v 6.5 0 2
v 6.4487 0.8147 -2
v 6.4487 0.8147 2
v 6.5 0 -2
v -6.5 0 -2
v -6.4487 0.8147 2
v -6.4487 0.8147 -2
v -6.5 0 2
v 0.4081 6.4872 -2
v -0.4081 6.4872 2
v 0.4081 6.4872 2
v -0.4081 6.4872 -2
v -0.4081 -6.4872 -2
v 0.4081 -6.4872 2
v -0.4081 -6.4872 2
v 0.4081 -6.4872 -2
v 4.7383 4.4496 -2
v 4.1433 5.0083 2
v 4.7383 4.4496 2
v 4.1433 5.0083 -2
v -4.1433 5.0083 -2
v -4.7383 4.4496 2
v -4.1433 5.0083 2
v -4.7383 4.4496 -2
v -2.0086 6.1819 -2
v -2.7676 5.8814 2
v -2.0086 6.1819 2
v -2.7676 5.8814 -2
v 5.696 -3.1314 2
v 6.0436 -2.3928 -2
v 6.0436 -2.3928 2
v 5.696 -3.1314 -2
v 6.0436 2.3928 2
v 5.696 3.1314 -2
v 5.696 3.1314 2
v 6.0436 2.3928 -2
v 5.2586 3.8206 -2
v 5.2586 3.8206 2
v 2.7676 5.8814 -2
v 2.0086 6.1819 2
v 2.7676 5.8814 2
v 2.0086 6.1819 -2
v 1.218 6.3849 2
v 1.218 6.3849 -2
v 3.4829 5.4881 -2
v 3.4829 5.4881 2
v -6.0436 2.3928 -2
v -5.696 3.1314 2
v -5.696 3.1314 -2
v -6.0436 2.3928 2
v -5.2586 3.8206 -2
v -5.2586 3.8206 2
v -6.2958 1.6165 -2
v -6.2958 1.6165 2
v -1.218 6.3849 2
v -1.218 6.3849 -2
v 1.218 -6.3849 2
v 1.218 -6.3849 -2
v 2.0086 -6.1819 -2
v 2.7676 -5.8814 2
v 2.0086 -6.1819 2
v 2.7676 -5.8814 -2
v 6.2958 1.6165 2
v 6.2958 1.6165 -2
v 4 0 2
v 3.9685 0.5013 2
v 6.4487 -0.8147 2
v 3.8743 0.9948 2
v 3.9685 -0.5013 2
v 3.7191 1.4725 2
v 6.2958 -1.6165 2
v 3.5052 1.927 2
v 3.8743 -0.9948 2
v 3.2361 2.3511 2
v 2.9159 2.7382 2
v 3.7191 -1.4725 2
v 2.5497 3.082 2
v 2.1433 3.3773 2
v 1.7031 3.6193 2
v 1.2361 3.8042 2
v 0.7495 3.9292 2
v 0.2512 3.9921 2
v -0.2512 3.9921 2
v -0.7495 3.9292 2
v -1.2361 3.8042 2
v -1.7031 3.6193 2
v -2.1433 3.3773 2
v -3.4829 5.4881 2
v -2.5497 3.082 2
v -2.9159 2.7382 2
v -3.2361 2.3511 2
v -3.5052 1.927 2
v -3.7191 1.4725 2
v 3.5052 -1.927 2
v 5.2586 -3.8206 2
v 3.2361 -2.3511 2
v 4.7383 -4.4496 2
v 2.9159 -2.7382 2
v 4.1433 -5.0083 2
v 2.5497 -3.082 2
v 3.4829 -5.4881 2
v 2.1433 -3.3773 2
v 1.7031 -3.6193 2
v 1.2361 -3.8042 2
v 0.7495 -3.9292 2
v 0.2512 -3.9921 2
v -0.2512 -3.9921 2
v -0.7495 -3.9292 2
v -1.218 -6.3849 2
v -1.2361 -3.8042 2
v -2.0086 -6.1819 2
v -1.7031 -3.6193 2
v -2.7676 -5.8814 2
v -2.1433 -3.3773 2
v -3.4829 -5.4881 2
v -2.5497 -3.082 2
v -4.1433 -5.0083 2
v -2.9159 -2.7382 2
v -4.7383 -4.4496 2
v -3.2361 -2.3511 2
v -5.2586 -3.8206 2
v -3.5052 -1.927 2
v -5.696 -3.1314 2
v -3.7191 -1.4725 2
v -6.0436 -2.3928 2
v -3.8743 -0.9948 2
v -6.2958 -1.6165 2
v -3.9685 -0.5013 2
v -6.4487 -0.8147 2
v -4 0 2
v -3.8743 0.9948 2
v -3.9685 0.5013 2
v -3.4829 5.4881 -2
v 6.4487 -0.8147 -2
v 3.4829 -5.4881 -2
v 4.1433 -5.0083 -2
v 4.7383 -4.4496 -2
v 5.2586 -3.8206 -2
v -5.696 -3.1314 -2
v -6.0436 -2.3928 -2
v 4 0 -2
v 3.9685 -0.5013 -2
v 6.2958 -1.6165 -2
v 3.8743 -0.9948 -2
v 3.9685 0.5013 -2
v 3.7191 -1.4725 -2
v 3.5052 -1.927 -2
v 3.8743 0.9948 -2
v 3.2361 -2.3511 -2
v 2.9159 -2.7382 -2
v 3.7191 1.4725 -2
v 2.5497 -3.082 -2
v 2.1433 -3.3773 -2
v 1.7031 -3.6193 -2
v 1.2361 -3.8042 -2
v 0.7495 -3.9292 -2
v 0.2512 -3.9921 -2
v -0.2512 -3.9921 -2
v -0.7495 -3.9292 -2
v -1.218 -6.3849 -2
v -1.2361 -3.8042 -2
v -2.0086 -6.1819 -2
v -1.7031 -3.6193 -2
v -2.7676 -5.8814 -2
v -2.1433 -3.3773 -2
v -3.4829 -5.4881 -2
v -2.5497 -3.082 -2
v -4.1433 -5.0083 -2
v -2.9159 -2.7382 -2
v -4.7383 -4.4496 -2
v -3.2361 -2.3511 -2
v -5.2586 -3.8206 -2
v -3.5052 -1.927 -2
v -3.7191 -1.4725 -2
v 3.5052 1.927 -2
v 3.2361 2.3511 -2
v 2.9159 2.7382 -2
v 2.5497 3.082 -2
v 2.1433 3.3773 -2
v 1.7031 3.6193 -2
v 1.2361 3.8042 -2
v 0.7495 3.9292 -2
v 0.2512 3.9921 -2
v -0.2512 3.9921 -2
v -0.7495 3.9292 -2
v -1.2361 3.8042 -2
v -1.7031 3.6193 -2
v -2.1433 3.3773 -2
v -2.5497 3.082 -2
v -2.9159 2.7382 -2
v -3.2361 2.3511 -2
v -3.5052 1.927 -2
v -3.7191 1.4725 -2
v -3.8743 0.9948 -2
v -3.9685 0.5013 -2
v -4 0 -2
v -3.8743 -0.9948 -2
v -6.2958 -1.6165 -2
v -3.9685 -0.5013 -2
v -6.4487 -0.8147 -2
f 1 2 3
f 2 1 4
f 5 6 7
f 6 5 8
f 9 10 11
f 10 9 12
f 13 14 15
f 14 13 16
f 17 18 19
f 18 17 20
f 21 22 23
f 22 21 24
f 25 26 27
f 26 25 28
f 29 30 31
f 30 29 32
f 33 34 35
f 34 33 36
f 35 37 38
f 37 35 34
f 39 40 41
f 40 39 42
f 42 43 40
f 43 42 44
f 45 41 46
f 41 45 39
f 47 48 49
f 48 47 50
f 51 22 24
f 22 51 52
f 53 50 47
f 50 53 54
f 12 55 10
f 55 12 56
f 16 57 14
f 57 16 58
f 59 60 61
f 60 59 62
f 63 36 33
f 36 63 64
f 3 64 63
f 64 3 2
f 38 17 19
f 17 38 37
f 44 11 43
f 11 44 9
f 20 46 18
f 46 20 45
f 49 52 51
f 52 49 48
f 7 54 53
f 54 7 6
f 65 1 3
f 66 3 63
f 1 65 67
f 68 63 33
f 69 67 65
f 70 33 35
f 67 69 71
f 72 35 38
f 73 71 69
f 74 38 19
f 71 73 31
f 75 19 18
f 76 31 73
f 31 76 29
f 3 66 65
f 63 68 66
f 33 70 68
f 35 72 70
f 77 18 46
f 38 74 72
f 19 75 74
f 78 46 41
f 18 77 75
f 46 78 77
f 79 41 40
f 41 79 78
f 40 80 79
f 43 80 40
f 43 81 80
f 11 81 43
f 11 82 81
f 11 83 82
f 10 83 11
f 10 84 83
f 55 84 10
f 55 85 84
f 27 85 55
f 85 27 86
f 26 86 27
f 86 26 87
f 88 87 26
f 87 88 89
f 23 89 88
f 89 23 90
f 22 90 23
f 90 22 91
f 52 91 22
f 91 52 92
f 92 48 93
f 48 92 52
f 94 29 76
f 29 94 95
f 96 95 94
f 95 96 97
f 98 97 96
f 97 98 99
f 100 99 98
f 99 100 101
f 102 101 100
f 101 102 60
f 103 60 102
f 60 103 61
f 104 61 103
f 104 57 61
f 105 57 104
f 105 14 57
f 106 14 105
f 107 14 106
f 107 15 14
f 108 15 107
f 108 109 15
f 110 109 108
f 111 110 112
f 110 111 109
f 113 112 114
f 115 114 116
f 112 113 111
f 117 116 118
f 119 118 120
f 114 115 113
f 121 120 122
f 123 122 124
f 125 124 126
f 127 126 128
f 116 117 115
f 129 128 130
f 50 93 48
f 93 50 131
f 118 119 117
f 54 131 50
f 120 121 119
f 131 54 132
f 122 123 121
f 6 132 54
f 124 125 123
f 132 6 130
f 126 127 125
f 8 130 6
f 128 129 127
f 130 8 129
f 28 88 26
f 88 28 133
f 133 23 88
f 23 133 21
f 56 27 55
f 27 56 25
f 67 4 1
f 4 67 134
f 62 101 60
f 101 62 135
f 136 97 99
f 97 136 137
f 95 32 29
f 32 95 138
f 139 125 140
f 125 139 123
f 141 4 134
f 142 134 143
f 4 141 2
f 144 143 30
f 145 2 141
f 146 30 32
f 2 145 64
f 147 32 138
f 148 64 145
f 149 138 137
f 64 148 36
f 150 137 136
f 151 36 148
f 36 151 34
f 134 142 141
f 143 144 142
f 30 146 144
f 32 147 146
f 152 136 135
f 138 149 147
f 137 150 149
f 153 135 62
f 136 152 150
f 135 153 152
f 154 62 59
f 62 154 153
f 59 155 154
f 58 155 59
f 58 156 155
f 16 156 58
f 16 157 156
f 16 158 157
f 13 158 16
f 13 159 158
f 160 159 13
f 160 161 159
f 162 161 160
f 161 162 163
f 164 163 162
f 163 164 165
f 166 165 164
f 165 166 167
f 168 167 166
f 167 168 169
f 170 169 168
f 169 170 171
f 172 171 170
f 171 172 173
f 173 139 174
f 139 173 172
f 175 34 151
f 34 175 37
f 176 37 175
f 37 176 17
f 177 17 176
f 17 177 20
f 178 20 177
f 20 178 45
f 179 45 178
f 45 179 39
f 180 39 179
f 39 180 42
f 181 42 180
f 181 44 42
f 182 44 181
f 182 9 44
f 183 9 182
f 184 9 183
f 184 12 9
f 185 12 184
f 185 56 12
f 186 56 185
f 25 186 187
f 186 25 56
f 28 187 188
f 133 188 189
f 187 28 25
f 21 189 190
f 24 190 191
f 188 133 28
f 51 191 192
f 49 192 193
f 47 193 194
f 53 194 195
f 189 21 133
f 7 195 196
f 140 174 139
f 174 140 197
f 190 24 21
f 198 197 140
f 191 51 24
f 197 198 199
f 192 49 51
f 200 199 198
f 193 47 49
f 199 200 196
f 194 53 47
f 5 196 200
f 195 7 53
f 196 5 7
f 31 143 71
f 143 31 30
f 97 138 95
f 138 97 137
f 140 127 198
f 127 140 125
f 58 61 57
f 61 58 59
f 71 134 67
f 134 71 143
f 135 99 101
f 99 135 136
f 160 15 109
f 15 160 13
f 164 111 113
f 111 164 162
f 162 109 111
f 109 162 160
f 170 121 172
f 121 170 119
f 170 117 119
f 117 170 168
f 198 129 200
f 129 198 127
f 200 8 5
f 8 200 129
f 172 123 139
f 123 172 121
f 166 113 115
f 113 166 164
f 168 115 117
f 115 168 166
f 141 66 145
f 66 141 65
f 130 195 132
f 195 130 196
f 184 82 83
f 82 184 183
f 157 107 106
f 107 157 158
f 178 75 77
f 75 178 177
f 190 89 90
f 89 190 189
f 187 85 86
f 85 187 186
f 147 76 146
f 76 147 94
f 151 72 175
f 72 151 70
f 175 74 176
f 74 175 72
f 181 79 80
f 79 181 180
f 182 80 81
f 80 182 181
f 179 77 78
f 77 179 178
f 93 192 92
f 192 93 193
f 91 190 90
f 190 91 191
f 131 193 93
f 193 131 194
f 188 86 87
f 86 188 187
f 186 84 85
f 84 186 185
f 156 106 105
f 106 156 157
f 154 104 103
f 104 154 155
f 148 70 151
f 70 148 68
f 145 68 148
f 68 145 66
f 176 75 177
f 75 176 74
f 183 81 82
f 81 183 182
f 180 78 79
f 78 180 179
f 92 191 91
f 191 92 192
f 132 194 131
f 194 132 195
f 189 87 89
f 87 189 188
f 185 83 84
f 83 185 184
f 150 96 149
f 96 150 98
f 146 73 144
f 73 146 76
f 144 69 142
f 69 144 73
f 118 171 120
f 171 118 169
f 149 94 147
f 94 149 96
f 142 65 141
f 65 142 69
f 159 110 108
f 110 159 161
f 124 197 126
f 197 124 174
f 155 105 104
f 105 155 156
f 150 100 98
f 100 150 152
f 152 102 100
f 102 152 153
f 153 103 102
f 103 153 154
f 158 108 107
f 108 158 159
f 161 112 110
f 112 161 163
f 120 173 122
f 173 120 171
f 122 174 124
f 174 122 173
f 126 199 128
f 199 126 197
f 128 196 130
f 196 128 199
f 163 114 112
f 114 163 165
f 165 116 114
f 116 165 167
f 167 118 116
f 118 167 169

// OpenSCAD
$fn = 50;


difference() {
	union() {
		translate(v = [0, 0, -2.0000000000]) {
			cylinder(h = 4, r = 6.5000000000);
		}
	}
	union() {
		translate(v = [0, 0, -100.0000000000]) {
			cylinder(h = 200, r = 4.0000000000);
		}
	}
}
